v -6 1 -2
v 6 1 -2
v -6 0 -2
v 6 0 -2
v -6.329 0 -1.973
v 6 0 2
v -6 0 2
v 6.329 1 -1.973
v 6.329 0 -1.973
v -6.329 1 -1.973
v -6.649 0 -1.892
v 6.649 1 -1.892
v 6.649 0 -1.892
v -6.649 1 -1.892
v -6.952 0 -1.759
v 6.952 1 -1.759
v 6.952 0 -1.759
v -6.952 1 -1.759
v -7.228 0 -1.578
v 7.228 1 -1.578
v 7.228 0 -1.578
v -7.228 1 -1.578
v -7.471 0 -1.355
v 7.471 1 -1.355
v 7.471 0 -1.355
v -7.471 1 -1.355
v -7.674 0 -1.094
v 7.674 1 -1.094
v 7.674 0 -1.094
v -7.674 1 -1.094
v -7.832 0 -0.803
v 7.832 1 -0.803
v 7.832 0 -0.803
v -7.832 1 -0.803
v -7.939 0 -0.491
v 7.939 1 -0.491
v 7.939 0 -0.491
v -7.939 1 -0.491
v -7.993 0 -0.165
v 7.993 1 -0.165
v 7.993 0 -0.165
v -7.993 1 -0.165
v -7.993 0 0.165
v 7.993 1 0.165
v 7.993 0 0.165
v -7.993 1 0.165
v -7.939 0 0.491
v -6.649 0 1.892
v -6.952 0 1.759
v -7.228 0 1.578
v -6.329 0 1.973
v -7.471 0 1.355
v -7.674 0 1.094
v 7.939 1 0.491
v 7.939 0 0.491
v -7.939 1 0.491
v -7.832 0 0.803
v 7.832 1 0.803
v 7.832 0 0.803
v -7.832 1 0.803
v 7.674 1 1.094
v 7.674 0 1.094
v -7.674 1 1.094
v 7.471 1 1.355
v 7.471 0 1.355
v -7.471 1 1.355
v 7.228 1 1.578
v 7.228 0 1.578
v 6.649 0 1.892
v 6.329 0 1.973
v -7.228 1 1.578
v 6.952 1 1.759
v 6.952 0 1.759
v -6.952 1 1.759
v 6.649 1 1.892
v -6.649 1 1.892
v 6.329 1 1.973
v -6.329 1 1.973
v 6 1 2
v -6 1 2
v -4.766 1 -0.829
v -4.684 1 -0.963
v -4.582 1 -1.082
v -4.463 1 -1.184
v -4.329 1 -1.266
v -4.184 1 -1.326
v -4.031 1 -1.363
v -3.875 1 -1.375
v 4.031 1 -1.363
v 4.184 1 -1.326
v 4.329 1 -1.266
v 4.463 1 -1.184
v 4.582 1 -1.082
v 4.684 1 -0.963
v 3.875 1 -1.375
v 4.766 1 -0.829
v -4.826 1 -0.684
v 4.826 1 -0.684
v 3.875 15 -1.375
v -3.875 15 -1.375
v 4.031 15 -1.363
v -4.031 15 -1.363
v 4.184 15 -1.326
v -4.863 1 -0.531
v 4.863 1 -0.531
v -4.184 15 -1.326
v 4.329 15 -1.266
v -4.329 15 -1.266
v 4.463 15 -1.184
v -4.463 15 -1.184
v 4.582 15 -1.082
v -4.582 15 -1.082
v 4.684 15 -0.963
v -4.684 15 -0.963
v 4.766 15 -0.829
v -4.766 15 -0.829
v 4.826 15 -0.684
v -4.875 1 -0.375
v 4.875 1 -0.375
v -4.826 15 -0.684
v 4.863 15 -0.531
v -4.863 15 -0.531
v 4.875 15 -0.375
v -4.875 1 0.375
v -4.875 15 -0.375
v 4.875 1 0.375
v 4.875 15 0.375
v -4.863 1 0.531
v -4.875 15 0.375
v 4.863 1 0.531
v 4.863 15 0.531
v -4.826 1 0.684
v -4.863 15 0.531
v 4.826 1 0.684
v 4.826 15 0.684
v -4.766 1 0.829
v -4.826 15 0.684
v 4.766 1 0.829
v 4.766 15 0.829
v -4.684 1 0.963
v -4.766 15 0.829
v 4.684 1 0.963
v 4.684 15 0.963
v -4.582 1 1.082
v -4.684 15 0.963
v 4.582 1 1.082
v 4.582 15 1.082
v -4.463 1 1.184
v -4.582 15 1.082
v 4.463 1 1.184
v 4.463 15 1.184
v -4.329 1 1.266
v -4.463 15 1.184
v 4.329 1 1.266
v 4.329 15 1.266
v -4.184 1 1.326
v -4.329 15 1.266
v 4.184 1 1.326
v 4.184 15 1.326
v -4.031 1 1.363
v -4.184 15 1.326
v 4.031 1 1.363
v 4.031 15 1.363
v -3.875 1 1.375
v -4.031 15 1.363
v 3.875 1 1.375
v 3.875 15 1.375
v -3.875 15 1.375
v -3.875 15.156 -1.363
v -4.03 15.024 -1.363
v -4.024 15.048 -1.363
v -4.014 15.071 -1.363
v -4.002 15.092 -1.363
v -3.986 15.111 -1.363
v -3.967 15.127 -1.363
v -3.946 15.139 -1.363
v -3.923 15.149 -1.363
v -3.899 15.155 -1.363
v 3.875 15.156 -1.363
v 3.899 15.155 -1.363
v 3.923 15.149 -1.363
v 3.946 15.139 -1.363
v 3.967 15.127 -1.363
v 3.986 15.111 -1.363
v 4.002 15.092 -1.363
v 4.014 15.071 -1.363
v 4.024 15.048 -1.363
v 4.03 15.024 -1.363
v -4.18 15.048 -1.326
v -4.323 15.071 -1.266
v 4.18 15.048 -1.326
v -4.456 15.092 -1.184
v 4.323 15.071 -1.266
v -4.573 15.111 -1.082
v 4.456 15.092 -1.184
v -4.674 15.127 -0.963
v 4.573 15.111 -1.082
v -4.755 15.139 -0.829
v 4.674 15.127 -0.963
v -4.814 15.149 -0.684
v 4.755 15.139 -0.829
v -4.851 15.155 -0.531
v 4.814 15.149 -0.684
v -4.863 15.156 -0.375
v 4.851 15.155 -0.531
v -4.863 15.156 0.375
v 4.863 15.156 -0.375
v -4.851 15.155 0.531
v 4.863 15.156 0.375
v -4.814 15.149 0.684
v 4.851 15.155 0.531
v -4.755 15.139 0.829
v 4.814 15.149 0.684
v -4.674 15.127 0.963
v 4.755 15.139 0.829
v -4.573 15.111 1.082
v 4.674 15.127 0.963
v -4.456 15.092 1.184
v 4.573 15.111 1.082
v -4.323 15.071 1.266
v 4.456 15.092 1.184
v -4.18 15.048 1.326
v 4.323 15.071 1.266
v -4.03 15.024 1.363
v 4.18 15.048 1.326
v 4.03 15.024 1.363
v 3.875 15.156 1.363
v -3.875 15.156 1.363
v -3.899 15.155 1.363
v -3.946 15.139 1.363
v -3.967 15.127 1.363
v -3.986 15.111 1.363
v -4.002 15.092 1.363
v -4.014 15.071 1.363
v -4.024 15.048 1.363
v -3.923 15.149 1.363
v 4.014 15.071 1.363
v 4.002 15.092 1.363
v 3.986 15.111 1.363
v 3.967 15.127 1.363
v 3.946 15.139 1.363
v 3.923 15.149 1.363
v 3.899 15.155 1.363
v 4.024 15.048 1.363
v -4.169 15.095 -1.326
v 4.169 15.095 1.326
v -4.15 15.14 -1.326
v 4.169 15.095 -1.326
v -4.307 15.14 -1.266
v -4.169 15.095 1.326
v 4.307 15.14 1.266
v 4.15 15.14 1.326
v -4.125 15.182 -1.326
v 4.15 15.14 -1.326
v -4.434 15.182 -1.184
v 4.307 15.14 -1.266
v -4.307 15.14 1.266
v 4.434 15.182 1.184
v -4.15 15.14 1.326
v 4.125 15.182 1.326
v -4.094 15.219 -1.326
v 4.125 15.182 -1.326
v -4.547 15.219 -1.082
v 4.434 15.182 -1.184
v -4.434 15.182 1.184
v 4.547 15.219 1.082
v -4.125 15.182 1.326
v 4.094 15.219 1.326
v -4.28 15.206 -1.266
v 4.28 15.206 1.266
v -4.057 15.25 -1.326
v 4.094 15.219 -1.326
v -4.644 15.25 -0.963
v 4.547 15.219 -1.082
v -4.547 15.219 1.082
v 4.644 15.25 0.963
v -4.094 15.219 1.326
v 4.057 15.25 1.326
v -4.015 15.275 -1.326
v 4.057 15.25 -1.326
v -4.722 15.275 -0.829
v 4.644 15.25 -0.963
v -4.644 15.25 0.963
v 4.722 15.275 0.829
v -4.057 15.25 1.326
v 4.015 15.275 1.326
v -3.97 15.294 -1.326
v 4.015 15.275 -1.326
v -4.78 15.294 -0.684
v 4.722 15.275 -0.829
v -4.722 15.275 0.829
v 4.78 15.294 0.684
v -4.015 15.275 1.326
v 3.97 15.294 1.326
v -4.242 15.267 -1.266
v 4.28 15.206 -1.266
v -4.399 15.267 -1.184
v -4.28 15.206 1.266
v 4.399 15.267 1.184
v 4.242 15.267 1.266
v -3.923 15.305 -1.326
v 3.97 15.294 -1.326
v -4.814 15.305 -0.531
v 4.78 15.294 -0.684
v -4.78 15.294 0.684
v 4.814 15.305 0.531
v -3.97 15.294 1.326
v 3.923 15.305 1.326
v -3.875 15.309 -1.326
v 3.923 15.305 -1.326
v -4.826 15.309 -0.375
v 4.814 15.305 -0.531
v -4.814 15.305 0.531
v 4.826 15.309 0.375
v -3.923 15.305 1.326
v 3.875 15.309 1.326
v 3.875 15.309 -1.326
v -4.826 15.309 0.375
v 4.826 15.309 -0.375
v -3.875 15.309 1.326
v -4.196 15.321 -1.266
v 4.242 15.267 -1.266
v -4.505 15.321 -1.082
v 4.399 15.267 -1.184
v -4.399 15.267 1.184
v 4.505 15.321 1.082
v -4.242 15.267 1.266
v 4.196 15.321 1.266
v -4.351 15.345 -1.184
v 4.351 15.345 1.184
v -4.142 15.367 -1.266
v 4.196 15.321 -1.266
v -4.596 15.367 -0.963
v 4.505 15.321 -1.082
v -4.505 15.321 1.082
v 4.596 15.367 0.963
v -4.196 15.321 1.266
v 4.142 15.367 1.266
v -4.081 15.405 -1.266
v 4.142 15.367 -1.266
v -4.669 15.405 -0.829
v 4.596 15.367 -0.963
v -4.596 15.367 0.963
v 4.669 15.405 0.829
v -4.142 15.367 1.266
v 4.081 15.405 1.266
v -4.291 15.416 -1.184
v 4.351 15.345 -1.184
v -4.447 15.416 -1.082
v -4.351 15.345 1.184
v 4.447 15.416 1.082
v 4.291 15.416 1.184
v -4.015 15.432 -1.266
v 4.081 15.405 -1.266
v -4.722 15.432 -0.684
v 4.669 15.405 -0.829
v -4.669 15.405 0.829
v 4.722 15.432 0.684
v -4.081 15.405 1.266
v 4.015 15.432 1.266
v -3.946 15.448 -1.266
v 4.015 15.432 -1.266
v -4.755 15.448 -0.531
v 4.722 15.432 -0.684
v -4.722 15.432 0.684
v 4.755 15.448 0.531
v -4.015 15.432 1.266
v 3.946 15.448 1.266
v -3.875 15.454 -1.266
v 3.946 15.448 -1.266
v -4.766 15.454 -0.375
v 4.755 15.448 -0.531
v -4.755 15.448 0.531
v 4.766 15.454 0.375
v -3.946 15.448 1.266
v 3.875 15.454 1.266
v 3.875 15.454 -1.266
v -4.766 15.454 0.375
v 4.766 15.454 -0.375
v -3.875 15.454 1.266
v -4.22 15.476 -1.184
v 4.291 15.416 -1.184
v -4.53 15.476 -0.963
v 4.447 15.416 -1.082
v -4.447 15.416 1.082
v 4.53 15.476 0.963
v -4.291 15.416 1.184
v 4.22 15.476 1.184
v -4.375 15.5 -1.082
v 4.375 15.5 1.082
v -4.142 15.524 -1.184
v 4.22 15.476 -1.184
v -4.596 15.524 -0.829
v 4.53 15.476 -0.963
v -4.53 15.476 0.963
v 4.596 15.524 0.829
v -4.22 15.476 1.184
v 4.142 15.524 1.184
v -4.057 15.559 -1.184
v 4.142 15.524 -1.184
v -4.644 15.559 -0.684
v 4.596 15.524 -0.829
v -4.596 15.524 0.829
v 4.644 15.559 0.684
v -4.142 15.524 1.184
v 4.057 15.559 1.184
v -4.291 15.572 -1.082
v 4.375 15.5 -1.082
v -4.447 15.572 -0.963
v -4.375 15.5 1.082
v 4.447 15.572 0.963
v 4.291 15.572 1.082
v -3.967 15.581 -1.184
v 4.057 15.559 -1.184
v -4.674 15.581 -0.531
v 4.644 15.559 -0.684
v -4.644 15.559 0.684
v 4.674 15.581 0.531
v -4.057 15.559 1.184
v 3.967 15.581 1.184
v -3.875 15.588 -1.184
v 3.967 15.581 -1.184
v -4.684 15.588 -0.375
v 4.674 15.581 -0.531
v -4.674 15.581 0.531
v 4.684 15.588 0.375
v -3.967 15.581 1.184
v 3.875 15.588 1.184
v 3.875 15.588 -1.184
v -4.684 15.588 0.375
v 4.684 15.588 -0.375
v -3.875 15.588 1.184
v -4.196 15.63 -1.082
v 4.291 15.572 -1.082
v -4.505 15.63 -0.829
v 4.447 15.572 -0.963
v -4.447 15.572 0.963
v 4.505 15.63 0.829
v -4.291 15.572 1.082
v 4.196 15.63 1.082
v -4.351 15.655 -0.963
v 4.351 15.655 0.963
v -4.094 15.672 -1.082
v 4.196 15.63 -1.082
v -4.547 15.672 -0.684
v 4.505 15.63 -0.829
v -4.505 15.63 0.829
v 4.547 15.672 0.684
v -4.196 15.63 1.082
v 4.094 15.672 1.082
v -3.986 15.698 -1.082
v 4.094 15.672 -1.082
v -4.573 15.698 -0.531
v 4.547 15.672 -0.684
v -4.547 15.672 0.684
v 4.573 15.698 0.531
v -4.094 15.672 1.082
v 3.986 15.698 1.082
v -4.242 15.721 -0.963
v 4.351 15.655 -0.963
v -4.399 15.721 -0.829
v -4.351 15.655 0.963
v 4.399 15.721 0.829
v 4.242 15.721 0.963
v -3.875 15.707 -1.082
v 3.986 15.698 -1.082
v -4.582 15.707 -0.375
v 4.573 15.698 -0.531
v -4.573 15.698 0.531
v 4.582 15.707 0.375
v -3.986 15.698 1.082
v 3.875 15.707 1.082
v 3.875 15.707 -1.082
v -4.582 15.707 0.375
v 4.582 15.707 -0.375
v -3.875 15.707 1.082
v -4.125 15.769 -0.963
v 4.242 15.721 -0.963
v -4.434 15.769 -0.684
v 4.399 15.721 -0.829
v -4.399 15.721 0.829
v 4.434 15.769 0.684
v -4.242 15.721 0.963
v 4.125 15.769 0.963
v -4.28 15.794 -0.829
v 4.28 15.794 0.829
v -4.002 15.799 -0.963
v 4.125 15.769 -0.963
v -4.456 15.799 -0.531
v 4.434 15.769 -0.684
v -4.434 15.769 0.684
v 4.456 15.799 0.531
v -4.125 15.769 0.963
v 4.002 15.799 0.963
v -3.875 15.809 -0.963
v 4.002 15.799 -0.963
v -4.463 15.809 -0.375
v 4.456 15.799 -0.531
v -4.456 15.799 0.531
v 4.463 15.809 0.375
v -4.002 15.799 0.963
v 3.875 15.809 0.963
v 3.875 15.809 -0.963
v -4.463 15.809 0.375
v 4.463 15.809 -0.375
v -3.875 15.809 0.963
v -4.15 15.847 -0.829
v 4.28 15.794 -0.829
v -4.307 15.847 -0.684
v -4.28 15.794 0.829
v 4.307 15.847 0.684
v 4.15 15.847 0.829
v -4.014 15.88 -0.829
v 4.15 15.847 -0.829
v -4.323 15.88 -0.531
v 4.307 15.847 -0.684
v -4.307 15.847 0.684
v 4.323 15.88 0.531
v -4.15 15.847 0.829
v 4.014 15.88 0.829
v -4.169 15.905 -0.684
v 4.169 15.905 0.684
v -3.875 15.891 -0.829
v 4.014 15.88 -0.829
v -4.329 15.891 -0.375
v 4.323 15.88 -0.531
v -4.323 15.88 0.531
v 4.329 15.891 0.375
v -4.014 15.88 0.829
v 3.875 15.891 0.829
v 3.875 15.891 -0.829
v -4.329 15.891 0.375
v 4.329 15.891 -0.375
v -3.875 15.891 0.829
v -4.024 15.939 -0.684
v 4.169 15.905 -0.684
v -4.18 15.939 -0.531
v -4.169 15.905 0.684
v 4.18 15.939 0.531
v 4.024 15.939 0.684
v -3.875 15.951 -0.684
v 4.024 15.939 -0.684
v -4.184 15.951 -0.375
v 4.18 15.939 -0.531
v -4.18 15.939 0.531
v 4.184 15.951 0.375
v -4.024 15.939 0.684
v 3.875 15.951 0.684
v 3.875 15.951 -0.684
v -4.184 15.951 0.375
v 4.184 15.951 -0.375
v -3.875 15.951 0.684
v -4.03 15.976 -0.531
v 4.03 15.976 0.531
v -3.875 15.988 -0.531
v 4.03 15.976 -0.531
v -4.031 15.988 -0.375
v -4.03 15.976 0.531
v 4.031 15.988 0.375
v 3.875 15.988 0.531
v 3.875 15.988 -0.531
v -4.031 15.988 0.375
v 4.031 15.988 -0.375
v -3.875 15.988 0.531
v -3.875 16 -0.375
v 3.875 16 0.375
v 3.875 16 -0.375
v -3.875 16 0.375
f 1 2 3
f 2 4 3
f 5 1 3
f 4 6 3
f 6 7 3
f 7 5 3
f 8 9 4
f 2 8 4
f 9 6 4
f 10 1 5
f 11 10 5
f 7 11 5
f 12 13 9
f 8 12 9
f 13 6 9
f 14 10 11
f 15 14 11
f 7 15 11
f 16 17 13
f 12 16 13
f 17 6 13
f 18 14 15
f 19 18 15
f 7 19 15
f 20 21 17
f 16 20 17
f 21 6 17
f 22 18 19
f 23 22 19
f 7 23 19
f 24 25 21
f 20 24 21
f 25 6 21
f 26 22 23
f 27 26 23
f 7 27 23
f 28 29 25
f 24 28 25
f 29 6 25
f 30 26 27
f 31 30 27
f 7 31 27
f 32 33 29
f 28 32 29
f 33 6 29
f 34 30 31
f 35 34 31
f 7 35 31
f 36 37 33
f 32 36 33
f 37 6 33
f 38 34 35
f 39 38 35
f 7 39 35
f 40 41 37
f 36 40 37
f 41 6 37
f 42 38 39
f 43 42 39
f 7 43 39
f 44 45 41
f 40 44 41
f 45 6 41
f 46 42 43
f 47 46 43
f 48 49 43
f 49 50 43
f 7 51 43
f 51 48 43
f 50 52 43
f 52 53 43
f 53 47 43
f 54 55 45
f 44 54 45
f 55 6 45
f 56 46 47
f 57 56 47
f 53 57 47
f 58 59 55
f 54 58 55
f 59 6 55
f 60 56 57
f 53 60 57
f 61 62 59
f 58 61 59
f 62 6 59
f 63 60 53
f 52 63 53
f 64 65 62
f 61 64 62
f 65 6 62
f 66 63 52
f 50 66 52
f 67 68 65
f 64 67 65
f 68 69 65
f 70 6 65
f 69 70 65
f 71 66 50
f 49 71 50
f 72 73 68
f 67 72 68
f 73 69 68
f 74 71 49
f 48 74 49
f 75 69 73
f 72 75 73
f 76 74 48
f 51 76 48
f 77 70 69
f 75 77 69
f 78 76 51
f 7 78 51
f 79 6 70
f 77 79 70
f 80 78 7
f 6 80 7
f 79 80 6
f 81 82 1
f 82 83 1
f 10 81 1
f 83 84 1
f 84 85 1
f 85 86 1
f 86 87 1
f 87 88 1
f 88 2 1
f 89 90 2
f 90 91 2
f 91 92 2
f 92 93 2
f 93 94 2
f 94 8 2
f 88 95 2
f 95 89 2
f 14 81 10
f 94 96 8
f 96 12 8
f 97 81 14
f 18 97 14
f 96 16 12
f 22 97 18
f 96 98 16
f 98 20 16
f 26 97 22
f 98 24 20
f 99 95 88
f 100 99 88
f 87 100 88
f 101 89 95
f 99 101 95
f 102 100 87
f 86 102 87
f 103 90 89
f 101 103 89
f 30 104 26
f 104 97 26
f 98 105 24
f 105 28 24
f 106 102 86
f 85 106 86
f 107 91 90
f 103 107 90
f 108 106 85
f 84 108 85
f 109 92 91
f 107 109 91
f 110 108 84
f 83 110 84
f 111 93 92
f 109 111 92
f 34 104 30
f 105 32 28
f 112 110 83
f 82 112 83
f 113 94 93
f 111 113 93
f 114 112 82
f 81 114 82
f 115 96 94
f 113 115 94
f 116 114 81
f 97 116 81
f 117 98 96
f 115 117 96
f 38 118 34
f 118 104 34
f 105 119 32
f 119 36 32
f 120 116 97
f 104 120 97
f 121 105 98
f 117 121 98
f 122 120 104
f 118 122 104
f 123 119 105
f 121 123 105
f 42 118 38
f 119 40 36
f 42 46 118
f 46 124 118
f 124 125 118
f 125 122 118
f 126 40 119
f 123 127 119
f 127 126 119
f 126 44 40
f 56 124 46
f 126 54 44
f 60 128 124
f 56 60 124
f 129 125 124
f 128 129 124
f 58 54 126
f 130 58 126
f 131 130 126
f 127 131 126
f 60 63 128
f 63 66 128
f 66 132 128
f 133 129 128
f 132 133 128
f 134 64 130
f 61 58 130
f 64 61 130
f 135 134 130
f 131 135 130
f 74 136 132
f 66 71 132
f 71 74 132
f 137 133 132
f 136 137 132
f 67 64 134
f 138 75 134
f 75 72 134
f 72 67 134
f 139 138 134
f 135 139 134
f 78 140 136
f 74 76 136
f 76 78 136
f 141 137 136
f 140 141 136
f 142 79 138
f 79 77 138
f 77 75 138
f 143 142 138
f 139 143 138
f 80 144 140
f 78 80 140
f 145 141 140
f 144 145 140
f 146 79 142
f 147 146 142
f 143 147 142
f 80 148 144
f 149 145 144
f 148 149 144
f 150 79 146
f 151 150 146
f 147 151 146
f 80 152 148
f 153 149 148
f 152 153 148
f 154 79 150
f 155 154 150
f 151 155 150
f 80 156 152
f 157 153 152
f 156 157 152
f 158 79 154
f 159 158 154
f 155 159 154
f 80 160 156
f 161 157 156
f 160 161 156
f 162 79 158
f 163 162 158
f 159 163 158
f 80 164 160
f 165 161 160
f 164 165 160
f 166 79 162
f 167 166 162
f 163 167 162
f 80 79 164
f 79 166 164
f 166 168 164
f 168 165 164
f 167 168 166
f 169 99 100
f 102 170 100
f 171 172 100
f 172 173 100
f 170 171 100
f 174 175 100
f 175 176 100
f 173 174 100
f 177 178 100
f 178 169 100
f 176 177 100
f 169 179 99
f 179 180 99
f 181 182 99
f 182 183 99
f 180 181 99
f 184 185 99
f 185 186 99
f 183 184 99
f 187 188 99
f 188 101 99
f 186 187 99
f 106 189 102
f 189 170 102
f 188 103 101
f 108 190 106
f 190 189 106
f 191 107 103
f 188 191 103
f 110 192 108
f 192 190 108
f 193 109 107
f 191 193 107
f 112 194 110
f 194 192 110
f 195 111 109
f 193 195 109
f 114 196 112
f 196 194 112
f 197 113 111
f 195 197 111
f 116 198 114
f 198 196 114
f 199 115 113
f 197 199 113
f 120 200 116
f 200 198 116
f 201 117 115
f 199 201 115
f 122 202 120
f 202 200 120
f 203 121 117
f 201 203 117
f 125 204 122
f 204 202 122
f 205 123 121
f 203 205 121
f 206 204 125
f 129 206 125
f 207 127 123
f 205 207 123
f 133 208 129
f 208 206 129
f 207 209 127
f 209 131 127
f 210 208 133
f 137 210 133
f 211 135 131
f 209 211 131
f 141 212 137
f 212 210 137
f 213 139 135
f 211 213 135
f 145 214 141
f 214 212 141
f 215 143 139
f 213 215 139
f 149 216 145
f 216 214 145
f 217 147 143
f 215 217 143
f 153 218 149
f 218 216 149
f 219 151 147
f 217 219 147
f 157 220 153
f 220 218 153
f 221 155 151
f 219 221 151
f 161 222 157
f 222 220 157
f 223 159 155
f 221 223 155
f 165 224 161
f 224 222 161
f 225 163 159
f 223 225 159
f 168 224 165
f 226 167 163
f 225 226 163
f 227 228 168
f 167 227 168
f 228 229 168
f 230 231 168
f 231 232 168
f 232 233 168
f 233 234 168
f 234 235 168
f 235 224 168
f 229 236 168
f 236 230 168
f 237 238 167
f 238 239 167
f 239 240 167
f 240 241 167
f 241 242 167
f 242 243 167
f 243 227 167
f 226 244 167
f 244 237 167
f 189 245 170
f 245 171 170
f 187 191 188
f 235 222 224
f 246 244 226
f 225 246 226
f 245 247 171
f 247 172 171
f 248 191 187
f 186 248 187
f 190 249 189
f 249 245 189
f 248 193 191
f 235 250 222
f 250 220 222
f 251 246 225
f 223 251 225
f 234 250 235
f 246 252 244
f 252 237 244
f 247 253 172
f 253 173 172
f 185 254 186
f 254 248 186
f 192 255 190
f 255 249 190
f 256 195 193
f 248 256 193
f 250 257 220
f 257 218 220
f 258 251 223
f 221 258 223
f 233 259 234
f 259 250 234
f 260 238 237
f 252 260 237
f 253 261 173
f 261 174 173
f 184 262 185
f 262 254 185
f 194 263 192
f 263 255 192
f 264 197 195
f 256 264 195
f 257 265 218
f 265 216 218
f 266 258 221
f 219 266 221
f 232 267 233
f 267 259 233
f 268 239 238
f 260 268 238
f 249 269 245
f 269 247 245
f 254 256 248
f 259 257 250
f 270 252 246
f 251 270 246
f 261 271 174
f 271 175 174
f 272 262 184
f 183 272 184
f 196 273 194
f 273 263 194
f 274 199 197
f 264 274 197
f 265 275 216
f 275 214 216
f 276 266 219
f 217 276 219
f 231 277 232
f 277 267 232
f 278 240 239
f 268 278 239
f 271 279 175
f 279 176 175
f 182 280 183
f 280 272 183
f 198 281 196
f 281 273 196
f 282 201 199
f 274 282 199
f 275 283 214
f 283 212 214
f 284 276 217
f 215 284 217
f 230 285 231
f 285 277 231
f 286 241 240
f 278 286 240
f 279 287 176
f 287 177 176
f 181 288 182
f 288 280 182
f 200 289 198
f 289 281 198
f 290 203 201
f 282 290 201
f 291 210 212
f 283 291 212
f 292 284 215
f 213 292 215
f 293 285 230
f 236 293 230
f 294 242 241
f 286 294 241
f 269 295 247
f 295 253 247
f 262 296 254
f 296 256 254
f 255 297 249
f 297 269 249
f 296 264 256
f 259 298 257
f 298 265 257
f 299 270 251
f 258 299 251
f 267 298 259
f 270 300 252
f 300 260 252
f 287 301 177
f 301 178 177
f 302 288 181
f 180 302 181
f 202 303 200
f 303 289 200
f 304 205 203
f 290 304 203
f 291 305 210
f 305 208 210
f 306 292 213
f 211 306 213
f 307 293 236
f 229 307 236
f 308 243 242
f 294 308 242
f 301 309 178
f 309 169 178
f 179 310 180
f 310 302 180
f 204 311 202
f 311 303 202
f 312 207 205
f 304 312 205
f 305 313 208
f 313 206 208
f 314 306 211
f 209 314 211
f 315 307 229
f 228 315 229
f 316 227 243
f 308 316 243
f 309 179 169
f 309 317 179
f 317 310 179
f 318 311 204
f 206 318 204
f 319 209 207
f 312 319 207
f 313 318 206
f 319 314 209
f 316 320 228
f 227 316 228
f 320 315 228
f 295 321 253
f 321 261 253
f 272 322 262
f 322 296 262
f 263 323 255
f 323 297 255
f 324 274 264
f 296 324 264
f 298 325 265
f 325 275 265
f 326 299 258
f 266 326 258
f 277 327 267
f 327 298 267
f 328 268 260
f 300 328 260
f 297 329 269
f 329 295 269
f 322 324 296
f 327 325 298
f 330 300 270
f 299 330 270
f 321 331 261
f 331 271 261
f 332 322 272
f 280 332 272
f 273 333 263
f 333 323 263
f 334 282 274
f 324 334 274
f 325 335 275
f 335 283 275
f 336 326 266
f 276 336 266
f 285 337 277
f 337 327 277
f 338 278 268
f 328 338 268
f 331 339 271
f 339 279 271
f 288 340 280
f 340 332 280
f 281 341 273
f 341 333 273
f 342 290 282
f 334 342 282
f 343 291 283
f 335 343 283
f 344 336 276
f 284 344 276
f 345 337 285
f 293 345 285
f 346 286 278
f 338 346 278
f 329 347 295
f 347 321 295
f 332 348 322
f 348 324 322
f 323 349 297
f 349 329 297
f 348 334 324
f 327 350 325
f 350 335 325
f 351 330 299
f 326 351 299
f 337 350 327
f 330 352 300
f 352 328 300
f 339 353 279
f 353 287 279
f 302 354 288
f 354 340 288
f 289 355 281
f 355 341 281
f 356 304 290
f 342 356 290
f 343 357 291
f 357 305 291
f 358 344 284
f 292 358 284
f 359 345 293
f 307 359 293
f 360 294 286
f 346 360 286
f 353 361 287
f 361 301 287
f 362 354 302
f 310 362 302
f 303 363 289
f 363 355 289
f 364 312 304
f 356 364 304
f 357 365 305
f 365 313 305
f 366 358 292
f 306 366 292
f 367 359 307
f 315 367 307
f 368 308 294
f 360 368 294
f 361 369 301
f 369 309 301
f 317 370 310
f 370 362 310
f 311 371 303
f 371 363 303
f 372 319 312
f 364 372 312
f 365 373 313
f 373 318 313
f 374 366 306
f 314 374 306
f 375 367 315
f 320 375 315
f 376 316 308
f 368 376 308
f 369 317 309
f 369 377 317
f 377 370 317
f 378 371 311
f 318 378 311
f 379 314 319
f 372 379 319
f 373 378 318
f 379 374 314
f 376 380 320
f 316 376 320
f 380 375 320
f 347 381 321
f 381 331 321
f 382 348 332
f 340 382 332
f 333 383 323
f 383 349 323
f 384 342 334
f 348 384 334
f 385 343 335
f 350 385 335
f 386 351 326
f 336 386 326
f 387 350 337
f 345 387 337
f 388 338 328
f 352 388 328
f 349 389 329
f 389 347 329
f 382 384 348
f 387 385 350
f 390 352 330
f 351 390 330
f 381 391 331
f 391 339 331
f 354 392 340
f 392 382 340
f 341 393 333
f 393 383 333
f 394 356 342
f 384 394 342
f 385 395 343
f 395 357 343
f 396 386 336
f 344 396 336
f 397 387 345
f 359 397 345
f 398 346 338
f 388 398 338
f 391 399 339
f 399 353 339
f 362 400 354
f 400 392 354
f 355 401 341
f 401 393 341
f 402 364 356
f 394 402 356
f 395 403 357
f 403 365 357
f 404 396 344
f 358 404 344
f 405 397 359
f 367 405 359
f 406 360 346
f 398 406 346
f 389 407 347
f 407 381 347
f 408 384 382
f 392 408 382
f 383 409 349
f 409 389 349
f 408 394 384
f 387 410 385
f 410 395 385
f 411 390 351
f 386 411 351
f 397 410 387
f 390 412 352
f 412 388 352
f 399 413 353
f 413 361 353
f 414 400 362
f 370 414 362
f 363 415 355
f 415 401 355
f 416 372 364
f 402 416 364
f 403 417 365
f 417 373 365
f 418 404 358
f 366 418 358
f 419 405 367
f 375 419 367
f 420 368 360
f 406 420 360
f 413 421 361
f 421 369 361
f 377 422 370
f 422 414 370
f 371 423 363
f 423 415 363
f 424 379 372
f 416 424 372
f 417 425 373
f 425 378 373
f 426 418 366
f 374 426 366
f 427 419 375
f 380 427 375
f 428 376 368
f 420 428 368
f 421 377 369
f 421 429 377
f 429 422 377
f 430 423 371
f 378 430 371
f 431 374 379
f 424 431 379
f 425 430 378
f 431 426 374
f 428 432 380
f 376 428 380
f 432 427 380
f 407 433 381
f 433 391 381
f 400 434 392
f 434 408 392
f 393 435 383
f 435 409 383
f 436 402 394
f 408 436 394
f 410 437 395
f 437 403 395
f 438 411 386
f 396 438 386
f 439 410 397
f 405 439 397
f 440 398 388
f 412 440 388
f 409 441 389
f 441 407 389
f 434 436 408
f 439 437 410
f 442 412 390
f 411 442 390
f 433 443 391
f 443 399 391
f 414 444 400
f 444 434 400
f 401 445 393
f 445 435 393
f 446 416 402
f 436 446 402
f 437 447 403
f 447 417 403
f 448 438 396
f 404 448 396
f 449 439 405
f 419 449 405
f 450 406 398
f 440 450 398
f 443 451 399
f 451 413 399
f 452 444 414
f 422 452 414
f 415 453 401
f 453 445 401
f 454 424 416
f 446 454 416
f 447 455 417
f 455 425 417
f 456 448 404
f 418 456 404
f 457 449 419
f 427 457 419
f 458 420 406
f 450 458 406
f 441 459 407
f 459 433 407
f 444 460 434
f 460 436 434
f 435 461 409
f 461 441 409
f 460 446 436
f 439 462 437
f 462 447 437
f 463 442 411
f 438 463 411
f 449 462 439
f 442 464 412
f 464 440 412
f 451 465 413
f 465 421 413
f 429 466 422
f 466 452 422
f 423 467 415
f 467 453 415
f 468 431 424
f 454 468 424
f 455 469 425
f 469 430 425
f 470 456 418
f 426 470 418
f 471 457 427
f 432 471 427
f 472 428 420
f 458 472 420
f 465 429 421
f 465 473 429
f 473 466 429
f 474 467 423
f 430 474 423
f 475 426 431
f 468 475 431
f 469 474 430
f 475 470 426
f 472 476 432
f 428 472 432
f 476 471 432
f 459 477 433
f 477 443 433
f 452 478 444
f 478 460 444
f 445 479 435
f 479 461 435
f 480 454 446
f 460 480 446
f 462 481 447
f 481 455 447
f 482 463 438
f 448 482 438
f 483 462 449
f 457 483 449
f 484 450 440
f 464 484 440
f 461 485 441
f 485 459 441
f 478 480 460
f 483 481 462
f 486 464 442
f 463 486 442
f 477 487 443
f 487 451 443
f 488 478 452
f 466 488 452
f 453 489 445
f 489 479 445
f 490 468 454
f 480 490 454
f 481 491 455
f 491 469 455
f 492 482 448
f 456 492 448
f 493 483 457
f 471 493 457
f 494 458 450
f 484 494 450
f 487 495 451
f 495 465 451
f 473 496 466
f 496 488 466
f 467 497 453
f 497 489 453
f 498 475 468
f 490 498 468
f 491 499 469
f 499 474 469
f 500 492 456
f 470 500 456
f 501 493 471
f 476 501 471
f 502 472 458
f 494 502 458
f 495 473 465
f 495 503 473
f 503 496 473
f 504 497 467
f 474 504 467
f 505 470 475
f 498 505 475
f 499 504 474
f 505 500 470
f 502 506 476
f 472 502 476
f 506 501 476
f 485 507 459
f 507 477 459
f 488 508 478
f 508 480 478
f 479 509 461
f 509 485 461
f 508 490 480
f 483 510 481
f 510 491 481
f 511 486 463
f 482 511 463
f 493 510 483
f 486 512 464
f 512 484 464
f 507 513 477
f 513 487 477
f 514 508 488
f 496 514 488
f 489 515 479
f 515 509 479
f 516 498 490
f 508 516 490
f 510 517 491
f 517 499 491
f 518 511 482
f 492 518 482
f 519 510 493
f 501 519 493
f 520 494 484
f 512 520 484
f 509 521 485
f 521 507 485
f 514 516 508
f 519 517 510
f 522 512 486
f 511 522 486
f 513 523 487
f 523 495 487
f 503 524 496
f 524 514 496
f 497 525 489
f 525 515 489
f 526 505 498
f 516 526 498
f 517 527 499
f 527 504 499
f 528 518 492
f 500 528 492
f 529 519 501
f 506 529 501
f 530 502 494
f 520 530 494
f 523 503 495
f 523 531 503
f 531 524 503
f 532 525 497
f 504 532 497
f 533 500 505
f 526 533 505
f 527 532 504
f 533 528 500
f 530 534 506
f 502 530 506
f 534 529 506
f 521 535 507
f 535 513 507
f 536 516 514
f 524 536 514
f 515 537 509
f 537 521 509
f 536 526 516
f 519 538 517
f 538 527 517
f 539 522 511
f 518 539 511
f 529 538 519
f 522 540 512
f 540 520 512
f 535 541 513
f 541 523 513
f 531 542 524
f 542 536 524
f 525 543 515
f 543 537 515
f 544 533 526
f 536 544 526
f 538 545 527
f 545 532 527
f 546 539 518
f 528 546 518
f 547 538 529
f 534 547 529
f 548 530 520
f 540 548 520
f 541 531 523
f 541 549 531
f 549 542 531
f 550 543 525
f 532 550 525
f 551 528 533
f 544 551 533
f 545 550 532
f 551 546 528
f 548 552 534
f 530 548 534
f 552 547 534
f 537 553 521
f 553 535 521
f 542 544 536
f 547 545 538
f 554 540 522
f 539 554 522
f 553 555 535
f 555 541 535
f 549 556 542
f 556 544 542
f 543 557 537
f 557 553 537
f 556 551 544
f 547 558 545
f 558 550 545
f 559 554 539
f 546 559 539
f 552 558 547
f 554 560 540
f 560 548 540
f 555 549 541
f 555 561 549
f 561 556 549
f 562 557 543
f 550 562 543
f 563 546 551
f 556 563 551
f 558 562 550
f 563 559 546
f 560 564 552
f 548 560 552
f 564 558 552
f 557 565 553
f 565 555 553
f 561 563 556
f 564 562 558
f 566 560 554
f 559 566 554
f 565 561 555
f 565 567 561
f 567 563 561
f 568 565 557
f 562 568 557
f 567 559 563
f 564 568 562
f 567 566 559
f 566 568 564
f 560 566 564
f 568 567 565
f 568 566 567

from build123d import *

# Parameters (mm, degrees)
BOSS_EXTRUDE1_DEPTH = 1
SKETCH2_W           = 9.75
SKETCH2_H           = 2.75
BOSS_EXTRUDE2_DEPTH = 15
FILLET1_R           = 1
FILLET2_R           = 1


with BuildPart() as part:
    # Sketch1 → Boss-Extrude1 (new body)
    with BuildSketch(Plane(origin=(0, 0, 0), x_dir=(1, 0, 0), z_dir=(0, 1, 0))):
        with BuildLine():
            Line((6, -2), (-6, -2))
            ThreePointArc((-6, -2), (-8, 0), (-6, 2))
            Line((-6, 2), (6, 2))
            ThreePointArc((6, 2), (8, 0), (6, -2))
        make_face()
    extrude(amount=BOSS_EXTRUDE1_DEPTH)

    # Sketch2 → Boss-Extrude2 (add)
    with BuildSketch(Plane(origin=(0, 1, 0), x_dir=(1, 0, 0), z_dir=(0, 1, 0))):
        Rectangle(SKETCH2_W, SKETCH2_H)
    extrude(amount=BOSS_EXTRUDE2_DEPTH)

    # Fillet1
    fillet1_edges = [part.edges().sort_by_distance(p)[0] for p in [
        (-4.875, 16, 0),
        (0, 16, 1.375),
        (4.875, 16, 0),
        (0, 16, -1.375),
    ]]
    fillet(fillet1_edges, radius=FILLET1_R)

    # Fillet2
    # the kernel refuses this fillet: 1 mm, written as the material it takes off along each edge
    with BuildSketch(Plane(origin=(3.875, 15, 0.375), x_dir=(1, 0, 0), z_dir=(0, 0, 1))) as fillet2_piece_1_section:
        Polygon((0, 0), (FILLET2_R * 1.02, 0), (FILLET2_R * 1.02, FILLET2_R * 1.02), (0, FILLET2_R * 1.02), align=None)
    fillet2_piece_1 = extrude(amount=FILLET2_R * 1.02, mode=Mode.PRIVATE)
    fillet2_piece_1 = fillet2_piece_1 - Plane(origin=(3.875, 15, 0.375), x_dir=(-0.7071067811865475, -0.7071067811865475, 0), z_dir=(0, 0, 1)) * Sphere(FILLET2_R, mode=Mode.PRIVATE)
    add(fillet2_piece_1, mode=Mode.SUBTRACT)
    with BuildSketch(Plane(origin=(-3.875, 15, 0.375), x_dir=(-1, 0, 0), z_dir=(0, 0, 1))) as fillet2_piece_2_section:
        Polygon((0, 0), (FILLET2_R * 1.02, 0), (FILLET2_R * 1.02, -FILLET2_R * 1.02), (0, -FILLET2_R * 1.02), align=None)
    fillet2_piece_2 = extrude(amount=FILLET2_R * 1.02, mode=Mode.PRIVATE)
    fillet2_piece_2 = fillet2_piece_2 - Plane(origin=(-3.875, 15, 0.375), x_dir=(0.7071067811865475, -0.7071067811865475, 0), z_dir=(0, 0, 1)) * Sphere(FILLET2_R, mode=Mode.PRIVATE)
    add(fillet2_piece_2, mode=Mode.SUBTRACT)
    with BuildSketch(Plane(origin=(3.875, 15, -0.375), x_dir=(0, 0, -1), z_dir=(1, 0, 0))) as fillet2_piece_3_section:
        Polygon((0, 0), (FILLET2_R * 1.02, 0), (FILLET2_R * 1.02, FILLET2_R * 1.02), (0, FILLET2_R * 1.02), align=None)
    fillet2_piece_3 = extrude(amount=FILLET2_R * 1.02, mode=Mode.PRIVATE)
    fillet2_piece_3 = fillet2_piece_3 - Plane(origin=(3.875, 15, -0.375), x_dir=(0, -0.7071067811865475, 0.7071067811865475), z_dir=(1, 0, 0)) * Sphere(FILLET2_R, mode=Mode.PRIVATE)
    add(fillet2_piece_3, mode=Mode.SUBTRACT)
    with BuildSketch(Plane(origin=(-3.875, 15, -0.375), x_dir=(0, 0, -1), z_dir=(-1, 0, 0))) as fillet2_piece_4_section:
        Polygon((0, 0), (FILLET2_R * 1.02, 0), (FILLET2_R * 1.02, -FILLET2_R * 1.02), (0, -FILLET2_R * 1.02), align=None)
    fillet2_piece_4 = extrude(amount=FILLET2_R * 1.02, mode=Mode.PRIVATE)
    fillet2_piece_4 = fillet2_piece_4 - Plane(origin=(-3.875, 15, -0.375), x_dir=(0, -0.7071067811865475, 0.7071067811865475), z_dir=(-1, 0, 0)) * Sphere(FILLET2_R, mode=Mode.PRIVATE)
    add(fillet2_piece_4, mode=Mode.SUBTRACT)
    with BuildSketch(Plane(origin=(-4.875, 1, -1.375), x_dir=(0, 0, 1), z_dir=(0, 1, 0)), Plane(origin=(-4.875, 1, 1.375), x_dir=(1, 0, 0), z_dir=(0, 1, 0))) as fillet2_piece_5:
        with BuildLine():
            CenterArc((FILLET2_R, FILLET2_R), FILLET2_R, 180, 90)
            Line((0, FILLET2_R), (0, 0))
            Line((0, 0), (FILLET2_R, 0))
        make_face()
    extrude(amount=14, mode=Mode.SUBTRACT)
    with BuildSketch(Plane(origin=(4.875, 1, -1.375), x_dir=(0, 0, 1), z_dir=(0, 1, 0)), Plane(origin=(4.875, 1, 1.375), x_dir=(-1, 0, 0), z_dir=(0, 1, 0))) as fillet2_piece_6:
        with BuildLine():
            CenterArc((FILLET2_R, -FILLET2_R), FILLET2_R, 90, 90)
            Line((0, -FILLET2_R), (0, 0))
            Line((0, 0), (FILLET2_R, 0))
        make_face()
    extrude(amount=14, mode=Mode.SUBTRACT)


solid = part.part
